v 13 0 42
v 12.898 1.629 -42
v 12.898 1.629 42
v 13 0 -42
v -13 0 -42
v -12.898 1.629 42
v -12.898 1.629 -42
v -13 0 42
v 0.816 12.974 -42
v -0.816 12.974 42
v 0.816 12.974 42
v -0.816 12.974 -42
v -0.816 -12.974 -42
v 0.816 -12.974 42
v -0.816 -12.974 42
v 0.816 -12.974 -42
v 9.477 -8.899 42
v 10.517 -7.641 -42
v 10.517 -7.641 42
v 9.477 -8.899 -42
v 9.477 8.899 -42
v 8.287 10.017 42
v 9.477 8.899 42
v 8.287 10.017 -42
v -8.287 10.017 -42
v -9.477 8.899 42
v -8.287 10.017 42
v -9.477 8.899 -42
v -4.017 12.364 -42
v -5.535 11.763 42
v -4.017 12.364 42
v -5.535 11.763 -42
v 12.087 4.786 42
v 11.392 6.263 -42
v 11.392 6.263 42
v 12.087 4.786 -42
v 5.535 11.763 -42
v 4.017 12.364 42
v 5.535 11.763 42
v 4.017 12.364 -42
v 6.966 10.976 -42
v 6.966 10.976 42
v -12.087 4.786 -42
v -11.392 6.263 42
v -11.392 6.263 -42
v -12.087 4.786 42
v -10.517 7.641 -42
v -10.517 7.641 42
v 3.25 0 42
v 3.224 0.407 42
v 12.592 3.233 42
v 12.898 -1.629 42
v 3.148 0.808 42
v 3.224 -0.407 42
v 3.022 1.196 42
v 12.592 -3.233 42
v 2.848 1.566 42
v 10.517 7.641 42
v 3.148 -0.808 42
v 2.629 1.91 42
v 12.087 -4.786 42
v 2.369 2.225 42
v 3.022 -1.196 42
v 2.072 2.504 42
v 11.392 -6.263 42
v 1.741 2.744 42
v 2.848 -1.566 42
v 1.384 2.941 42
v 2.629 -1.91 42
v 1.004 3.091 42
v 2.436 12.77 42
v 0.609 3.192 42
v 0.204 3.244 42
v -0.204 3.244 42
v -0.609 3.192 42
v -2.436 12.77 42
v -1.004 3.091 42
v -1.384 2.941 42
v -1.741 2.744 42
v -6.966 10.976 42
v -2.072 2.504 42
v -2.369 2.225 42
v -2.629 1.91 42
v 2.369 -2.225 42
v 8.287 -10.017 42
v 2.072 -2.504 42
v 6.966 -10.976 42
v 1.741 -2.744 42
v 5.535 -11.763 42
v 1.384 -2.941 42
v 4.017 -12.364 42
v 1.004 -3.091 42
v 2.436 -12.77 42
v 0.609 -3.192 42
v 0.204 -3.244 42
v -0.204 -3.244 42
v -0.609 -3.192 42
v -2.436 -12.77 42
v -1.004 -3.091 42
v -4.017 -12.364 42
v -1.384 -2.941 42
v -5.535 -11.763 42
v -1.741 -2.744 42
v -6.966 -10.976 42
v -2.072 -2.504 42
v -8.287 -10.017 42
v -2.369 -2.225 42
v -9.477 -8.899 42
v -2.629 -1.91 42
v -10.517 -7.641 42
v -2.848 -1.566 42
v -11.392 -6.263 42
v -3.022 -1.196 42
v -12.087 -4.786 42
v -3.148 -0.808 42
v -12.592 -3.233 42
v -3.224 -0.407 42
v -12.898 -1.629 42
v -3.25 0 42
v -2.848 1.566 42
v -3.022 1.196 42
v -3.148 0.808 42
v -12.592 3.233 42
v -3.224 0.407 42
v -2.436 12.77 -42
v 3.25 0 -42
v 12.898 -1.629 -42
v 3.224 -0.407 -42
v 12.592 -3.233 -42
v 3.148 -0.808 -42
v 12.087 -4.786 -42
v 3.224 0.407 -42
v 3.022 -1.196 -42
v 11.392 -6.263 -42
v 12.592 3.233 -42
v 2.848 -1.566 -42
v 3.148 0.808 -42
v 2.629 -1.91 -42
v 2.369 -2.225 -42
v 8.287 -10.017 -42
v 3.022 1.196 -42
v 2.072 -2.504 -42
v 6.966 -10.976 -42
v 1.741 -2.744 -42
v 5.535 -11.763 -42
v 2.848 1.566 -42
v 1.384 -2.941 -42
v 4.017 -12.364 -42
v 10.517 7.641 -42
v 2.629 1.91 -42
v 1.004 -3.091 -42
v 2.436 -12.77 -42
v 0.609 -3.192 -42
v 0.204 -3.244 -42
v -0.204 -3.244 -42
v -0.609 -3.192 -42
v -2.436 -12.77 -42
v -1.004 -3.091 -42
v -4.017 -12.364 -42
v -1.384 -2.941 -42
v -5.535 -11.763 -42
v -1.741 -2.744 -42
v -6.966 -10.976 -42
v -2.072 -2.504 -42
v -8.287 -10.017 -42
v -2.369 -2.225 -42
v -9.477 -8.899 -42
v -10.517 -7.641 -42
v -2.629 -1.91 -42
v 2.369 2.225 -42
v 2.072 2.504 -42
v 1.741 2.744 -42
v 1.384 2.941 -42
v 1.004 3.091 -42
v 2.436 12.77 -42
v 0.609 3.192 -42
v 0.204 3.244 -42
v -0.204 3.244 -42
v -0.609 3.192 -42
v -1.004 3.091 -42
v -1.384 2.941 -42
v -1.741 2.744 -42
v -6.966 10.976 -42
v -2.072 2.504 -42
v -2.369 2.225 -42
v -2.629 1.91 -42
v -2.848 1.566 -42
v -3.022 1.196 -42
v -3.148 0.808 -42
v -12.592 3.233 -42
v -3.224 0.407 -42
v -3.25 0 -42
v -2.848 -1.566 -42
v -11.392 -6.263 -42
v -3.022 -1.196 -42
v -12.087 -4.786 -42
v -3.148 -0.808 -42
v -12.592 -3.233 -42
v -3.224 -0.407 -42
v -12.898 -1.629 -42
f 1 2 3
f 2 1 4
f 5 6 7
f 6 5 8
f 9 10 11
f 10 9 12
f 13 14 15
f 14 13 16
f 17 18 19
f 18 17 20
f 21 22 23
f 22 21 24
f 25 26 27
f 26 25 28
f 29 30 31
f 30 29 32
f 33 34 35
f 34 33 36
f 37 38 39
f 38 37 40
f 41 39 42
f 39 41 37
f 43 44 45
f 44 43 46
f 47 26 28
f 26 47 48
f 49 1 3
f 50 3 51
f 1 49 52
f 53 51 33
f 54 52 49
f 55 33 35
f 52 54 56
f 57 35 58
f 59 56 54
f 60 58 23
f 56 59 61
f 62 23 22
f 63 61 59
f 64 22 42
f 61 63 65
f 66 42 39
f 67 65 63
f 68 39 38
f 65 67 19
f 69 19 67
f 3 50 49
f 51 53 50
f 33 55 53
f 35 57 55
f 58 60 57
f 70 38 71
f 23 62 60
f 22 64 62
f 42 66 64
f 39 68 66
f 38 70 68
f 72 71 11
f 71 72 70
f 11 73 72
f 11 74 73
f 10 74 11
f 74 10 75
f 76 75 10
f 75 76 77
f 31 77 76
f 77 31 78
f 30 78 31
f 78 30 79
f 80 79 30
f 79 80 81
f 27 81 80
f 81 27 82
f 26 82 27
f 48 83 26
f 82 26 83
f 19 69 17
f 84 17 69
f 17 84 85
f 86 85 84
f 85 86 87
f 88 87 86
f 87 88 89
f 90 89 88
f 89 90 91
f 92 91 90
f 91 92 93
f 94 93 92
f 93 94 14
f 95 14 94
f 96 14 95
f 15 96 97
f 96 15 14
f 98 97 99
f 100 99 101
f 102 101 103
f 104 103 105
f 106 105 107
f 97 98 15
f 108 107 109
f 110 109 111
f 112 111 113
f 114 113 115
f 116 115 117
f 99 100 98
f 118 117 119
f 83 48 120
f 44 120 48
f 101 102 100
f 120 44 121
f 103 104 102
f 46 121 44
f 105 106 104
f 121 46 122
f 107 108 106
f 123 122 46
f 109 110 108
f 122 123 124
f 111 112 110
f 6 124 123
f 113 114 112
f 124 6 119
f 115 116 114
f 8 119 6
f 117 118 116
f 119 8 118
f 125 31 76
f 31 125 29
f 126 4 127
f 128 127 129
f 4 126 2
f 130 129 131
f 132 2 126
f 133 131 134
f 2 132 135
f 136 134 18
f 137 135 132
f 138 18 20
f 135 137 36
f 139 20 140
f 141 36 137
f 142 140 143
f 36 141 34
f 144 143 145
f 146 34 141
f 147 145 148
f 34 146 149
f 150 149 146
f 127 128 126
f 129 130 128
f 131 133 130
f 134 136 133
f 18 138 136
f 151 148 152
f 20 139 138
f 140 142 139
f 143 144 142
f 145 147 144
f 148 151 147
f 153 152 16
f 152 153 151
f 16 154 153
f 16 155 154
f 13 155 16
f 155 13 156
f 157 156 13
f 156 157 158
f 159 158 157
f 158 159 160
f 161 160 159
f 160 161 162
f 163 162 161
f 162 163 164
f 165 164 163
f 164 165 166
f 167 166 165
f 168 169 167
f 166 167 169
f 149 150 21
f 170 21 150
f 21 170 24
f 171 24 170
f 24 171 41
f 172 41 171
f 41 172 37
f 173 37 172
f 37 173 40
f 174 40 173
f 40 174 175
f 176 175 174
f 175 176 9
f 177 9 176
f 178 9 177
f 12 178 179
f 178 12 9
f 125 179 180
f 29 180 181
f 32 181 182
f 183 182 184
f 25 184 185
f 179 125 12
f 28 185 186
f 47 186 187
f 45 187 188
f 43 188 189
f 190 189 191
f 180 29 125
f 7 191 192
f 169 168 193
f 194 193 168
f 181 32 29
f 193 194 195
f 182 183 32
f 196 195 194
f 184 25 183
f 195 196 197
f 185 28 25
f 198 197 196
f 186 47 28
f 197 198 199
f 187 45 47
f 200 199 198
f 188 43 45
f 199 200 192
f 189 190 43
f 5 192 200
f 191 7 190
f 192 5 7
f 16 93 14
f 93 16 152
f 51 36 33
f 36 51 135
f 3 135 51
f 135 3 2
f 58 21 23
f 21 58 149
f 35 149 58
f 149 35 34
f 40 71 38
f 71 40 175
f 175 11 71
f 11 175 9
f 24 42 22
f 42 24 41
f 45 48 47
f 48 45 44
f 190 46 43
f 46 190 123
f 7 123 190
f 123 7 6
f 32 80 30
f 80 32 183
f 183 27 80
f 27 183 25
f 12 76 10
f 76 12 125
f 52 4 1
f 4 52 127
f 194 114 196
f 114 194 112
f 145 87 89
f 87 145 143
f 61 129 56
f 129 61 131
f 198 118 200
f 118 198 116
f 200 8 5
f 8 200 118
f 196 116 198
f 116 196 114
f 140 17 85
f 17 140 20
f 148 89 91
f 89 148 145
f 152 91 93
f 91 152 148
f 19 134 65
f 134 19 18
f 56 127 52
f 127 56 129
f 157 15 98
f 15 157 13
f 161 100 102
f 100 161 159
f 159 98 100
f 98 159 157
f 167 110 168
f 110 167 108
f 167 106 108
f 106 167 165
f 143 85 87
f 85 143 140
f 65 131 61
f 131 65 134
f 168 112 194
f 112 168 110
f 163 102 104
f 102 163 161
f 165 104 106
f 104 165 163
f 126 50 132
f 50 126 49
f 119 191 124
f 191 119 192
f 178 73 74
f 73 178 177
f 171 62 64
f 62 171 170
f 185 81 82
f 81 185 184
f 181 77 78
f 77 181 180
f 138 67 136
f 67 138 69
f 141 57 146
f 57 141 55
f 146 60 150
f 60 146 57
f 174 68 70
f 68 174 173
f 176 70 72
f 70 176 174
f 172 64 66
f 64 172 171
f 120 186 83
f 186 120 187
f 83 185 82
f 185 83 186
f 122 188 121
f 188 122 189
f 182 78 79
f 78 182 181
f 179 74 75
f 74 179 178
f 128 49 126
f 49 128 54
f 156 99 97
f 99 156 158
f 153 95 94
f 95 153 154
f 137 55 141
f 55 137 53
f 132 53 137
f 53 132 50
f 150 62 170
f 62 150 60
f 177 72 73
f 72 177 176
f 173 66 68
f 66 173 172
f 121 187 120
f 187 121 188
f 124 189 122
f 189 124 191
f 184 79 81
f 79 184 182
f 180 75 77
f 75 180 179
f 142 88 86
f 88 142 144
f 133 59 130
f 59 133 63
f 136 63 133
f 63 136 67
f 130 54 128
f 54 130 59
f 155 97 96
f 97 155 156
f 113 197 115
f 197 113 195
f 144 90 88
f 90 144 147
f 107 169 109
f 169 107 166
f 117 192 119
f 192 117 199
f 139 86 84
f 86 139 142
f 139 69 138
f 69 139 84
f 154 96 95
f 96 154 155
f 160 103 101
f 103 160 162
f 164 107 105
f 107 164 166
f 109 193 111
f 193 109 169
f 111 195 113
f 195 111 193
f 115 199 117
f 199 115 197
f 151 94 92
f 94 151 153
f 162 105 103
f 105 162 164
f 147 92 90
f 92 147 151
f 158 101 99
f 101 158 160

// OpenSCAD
$fn = 50;


difference() {
	union() {
		translate(v = [0, 0, -42.0000000000]) {
			cylinder(h = 84, r = 13.0000000000);
		}
	}
	union() {
		translate(v = [0, 0, -100.0000000000]) {
			cylinder(h = 200, r = 3.2500000000);
		}
	}
}
